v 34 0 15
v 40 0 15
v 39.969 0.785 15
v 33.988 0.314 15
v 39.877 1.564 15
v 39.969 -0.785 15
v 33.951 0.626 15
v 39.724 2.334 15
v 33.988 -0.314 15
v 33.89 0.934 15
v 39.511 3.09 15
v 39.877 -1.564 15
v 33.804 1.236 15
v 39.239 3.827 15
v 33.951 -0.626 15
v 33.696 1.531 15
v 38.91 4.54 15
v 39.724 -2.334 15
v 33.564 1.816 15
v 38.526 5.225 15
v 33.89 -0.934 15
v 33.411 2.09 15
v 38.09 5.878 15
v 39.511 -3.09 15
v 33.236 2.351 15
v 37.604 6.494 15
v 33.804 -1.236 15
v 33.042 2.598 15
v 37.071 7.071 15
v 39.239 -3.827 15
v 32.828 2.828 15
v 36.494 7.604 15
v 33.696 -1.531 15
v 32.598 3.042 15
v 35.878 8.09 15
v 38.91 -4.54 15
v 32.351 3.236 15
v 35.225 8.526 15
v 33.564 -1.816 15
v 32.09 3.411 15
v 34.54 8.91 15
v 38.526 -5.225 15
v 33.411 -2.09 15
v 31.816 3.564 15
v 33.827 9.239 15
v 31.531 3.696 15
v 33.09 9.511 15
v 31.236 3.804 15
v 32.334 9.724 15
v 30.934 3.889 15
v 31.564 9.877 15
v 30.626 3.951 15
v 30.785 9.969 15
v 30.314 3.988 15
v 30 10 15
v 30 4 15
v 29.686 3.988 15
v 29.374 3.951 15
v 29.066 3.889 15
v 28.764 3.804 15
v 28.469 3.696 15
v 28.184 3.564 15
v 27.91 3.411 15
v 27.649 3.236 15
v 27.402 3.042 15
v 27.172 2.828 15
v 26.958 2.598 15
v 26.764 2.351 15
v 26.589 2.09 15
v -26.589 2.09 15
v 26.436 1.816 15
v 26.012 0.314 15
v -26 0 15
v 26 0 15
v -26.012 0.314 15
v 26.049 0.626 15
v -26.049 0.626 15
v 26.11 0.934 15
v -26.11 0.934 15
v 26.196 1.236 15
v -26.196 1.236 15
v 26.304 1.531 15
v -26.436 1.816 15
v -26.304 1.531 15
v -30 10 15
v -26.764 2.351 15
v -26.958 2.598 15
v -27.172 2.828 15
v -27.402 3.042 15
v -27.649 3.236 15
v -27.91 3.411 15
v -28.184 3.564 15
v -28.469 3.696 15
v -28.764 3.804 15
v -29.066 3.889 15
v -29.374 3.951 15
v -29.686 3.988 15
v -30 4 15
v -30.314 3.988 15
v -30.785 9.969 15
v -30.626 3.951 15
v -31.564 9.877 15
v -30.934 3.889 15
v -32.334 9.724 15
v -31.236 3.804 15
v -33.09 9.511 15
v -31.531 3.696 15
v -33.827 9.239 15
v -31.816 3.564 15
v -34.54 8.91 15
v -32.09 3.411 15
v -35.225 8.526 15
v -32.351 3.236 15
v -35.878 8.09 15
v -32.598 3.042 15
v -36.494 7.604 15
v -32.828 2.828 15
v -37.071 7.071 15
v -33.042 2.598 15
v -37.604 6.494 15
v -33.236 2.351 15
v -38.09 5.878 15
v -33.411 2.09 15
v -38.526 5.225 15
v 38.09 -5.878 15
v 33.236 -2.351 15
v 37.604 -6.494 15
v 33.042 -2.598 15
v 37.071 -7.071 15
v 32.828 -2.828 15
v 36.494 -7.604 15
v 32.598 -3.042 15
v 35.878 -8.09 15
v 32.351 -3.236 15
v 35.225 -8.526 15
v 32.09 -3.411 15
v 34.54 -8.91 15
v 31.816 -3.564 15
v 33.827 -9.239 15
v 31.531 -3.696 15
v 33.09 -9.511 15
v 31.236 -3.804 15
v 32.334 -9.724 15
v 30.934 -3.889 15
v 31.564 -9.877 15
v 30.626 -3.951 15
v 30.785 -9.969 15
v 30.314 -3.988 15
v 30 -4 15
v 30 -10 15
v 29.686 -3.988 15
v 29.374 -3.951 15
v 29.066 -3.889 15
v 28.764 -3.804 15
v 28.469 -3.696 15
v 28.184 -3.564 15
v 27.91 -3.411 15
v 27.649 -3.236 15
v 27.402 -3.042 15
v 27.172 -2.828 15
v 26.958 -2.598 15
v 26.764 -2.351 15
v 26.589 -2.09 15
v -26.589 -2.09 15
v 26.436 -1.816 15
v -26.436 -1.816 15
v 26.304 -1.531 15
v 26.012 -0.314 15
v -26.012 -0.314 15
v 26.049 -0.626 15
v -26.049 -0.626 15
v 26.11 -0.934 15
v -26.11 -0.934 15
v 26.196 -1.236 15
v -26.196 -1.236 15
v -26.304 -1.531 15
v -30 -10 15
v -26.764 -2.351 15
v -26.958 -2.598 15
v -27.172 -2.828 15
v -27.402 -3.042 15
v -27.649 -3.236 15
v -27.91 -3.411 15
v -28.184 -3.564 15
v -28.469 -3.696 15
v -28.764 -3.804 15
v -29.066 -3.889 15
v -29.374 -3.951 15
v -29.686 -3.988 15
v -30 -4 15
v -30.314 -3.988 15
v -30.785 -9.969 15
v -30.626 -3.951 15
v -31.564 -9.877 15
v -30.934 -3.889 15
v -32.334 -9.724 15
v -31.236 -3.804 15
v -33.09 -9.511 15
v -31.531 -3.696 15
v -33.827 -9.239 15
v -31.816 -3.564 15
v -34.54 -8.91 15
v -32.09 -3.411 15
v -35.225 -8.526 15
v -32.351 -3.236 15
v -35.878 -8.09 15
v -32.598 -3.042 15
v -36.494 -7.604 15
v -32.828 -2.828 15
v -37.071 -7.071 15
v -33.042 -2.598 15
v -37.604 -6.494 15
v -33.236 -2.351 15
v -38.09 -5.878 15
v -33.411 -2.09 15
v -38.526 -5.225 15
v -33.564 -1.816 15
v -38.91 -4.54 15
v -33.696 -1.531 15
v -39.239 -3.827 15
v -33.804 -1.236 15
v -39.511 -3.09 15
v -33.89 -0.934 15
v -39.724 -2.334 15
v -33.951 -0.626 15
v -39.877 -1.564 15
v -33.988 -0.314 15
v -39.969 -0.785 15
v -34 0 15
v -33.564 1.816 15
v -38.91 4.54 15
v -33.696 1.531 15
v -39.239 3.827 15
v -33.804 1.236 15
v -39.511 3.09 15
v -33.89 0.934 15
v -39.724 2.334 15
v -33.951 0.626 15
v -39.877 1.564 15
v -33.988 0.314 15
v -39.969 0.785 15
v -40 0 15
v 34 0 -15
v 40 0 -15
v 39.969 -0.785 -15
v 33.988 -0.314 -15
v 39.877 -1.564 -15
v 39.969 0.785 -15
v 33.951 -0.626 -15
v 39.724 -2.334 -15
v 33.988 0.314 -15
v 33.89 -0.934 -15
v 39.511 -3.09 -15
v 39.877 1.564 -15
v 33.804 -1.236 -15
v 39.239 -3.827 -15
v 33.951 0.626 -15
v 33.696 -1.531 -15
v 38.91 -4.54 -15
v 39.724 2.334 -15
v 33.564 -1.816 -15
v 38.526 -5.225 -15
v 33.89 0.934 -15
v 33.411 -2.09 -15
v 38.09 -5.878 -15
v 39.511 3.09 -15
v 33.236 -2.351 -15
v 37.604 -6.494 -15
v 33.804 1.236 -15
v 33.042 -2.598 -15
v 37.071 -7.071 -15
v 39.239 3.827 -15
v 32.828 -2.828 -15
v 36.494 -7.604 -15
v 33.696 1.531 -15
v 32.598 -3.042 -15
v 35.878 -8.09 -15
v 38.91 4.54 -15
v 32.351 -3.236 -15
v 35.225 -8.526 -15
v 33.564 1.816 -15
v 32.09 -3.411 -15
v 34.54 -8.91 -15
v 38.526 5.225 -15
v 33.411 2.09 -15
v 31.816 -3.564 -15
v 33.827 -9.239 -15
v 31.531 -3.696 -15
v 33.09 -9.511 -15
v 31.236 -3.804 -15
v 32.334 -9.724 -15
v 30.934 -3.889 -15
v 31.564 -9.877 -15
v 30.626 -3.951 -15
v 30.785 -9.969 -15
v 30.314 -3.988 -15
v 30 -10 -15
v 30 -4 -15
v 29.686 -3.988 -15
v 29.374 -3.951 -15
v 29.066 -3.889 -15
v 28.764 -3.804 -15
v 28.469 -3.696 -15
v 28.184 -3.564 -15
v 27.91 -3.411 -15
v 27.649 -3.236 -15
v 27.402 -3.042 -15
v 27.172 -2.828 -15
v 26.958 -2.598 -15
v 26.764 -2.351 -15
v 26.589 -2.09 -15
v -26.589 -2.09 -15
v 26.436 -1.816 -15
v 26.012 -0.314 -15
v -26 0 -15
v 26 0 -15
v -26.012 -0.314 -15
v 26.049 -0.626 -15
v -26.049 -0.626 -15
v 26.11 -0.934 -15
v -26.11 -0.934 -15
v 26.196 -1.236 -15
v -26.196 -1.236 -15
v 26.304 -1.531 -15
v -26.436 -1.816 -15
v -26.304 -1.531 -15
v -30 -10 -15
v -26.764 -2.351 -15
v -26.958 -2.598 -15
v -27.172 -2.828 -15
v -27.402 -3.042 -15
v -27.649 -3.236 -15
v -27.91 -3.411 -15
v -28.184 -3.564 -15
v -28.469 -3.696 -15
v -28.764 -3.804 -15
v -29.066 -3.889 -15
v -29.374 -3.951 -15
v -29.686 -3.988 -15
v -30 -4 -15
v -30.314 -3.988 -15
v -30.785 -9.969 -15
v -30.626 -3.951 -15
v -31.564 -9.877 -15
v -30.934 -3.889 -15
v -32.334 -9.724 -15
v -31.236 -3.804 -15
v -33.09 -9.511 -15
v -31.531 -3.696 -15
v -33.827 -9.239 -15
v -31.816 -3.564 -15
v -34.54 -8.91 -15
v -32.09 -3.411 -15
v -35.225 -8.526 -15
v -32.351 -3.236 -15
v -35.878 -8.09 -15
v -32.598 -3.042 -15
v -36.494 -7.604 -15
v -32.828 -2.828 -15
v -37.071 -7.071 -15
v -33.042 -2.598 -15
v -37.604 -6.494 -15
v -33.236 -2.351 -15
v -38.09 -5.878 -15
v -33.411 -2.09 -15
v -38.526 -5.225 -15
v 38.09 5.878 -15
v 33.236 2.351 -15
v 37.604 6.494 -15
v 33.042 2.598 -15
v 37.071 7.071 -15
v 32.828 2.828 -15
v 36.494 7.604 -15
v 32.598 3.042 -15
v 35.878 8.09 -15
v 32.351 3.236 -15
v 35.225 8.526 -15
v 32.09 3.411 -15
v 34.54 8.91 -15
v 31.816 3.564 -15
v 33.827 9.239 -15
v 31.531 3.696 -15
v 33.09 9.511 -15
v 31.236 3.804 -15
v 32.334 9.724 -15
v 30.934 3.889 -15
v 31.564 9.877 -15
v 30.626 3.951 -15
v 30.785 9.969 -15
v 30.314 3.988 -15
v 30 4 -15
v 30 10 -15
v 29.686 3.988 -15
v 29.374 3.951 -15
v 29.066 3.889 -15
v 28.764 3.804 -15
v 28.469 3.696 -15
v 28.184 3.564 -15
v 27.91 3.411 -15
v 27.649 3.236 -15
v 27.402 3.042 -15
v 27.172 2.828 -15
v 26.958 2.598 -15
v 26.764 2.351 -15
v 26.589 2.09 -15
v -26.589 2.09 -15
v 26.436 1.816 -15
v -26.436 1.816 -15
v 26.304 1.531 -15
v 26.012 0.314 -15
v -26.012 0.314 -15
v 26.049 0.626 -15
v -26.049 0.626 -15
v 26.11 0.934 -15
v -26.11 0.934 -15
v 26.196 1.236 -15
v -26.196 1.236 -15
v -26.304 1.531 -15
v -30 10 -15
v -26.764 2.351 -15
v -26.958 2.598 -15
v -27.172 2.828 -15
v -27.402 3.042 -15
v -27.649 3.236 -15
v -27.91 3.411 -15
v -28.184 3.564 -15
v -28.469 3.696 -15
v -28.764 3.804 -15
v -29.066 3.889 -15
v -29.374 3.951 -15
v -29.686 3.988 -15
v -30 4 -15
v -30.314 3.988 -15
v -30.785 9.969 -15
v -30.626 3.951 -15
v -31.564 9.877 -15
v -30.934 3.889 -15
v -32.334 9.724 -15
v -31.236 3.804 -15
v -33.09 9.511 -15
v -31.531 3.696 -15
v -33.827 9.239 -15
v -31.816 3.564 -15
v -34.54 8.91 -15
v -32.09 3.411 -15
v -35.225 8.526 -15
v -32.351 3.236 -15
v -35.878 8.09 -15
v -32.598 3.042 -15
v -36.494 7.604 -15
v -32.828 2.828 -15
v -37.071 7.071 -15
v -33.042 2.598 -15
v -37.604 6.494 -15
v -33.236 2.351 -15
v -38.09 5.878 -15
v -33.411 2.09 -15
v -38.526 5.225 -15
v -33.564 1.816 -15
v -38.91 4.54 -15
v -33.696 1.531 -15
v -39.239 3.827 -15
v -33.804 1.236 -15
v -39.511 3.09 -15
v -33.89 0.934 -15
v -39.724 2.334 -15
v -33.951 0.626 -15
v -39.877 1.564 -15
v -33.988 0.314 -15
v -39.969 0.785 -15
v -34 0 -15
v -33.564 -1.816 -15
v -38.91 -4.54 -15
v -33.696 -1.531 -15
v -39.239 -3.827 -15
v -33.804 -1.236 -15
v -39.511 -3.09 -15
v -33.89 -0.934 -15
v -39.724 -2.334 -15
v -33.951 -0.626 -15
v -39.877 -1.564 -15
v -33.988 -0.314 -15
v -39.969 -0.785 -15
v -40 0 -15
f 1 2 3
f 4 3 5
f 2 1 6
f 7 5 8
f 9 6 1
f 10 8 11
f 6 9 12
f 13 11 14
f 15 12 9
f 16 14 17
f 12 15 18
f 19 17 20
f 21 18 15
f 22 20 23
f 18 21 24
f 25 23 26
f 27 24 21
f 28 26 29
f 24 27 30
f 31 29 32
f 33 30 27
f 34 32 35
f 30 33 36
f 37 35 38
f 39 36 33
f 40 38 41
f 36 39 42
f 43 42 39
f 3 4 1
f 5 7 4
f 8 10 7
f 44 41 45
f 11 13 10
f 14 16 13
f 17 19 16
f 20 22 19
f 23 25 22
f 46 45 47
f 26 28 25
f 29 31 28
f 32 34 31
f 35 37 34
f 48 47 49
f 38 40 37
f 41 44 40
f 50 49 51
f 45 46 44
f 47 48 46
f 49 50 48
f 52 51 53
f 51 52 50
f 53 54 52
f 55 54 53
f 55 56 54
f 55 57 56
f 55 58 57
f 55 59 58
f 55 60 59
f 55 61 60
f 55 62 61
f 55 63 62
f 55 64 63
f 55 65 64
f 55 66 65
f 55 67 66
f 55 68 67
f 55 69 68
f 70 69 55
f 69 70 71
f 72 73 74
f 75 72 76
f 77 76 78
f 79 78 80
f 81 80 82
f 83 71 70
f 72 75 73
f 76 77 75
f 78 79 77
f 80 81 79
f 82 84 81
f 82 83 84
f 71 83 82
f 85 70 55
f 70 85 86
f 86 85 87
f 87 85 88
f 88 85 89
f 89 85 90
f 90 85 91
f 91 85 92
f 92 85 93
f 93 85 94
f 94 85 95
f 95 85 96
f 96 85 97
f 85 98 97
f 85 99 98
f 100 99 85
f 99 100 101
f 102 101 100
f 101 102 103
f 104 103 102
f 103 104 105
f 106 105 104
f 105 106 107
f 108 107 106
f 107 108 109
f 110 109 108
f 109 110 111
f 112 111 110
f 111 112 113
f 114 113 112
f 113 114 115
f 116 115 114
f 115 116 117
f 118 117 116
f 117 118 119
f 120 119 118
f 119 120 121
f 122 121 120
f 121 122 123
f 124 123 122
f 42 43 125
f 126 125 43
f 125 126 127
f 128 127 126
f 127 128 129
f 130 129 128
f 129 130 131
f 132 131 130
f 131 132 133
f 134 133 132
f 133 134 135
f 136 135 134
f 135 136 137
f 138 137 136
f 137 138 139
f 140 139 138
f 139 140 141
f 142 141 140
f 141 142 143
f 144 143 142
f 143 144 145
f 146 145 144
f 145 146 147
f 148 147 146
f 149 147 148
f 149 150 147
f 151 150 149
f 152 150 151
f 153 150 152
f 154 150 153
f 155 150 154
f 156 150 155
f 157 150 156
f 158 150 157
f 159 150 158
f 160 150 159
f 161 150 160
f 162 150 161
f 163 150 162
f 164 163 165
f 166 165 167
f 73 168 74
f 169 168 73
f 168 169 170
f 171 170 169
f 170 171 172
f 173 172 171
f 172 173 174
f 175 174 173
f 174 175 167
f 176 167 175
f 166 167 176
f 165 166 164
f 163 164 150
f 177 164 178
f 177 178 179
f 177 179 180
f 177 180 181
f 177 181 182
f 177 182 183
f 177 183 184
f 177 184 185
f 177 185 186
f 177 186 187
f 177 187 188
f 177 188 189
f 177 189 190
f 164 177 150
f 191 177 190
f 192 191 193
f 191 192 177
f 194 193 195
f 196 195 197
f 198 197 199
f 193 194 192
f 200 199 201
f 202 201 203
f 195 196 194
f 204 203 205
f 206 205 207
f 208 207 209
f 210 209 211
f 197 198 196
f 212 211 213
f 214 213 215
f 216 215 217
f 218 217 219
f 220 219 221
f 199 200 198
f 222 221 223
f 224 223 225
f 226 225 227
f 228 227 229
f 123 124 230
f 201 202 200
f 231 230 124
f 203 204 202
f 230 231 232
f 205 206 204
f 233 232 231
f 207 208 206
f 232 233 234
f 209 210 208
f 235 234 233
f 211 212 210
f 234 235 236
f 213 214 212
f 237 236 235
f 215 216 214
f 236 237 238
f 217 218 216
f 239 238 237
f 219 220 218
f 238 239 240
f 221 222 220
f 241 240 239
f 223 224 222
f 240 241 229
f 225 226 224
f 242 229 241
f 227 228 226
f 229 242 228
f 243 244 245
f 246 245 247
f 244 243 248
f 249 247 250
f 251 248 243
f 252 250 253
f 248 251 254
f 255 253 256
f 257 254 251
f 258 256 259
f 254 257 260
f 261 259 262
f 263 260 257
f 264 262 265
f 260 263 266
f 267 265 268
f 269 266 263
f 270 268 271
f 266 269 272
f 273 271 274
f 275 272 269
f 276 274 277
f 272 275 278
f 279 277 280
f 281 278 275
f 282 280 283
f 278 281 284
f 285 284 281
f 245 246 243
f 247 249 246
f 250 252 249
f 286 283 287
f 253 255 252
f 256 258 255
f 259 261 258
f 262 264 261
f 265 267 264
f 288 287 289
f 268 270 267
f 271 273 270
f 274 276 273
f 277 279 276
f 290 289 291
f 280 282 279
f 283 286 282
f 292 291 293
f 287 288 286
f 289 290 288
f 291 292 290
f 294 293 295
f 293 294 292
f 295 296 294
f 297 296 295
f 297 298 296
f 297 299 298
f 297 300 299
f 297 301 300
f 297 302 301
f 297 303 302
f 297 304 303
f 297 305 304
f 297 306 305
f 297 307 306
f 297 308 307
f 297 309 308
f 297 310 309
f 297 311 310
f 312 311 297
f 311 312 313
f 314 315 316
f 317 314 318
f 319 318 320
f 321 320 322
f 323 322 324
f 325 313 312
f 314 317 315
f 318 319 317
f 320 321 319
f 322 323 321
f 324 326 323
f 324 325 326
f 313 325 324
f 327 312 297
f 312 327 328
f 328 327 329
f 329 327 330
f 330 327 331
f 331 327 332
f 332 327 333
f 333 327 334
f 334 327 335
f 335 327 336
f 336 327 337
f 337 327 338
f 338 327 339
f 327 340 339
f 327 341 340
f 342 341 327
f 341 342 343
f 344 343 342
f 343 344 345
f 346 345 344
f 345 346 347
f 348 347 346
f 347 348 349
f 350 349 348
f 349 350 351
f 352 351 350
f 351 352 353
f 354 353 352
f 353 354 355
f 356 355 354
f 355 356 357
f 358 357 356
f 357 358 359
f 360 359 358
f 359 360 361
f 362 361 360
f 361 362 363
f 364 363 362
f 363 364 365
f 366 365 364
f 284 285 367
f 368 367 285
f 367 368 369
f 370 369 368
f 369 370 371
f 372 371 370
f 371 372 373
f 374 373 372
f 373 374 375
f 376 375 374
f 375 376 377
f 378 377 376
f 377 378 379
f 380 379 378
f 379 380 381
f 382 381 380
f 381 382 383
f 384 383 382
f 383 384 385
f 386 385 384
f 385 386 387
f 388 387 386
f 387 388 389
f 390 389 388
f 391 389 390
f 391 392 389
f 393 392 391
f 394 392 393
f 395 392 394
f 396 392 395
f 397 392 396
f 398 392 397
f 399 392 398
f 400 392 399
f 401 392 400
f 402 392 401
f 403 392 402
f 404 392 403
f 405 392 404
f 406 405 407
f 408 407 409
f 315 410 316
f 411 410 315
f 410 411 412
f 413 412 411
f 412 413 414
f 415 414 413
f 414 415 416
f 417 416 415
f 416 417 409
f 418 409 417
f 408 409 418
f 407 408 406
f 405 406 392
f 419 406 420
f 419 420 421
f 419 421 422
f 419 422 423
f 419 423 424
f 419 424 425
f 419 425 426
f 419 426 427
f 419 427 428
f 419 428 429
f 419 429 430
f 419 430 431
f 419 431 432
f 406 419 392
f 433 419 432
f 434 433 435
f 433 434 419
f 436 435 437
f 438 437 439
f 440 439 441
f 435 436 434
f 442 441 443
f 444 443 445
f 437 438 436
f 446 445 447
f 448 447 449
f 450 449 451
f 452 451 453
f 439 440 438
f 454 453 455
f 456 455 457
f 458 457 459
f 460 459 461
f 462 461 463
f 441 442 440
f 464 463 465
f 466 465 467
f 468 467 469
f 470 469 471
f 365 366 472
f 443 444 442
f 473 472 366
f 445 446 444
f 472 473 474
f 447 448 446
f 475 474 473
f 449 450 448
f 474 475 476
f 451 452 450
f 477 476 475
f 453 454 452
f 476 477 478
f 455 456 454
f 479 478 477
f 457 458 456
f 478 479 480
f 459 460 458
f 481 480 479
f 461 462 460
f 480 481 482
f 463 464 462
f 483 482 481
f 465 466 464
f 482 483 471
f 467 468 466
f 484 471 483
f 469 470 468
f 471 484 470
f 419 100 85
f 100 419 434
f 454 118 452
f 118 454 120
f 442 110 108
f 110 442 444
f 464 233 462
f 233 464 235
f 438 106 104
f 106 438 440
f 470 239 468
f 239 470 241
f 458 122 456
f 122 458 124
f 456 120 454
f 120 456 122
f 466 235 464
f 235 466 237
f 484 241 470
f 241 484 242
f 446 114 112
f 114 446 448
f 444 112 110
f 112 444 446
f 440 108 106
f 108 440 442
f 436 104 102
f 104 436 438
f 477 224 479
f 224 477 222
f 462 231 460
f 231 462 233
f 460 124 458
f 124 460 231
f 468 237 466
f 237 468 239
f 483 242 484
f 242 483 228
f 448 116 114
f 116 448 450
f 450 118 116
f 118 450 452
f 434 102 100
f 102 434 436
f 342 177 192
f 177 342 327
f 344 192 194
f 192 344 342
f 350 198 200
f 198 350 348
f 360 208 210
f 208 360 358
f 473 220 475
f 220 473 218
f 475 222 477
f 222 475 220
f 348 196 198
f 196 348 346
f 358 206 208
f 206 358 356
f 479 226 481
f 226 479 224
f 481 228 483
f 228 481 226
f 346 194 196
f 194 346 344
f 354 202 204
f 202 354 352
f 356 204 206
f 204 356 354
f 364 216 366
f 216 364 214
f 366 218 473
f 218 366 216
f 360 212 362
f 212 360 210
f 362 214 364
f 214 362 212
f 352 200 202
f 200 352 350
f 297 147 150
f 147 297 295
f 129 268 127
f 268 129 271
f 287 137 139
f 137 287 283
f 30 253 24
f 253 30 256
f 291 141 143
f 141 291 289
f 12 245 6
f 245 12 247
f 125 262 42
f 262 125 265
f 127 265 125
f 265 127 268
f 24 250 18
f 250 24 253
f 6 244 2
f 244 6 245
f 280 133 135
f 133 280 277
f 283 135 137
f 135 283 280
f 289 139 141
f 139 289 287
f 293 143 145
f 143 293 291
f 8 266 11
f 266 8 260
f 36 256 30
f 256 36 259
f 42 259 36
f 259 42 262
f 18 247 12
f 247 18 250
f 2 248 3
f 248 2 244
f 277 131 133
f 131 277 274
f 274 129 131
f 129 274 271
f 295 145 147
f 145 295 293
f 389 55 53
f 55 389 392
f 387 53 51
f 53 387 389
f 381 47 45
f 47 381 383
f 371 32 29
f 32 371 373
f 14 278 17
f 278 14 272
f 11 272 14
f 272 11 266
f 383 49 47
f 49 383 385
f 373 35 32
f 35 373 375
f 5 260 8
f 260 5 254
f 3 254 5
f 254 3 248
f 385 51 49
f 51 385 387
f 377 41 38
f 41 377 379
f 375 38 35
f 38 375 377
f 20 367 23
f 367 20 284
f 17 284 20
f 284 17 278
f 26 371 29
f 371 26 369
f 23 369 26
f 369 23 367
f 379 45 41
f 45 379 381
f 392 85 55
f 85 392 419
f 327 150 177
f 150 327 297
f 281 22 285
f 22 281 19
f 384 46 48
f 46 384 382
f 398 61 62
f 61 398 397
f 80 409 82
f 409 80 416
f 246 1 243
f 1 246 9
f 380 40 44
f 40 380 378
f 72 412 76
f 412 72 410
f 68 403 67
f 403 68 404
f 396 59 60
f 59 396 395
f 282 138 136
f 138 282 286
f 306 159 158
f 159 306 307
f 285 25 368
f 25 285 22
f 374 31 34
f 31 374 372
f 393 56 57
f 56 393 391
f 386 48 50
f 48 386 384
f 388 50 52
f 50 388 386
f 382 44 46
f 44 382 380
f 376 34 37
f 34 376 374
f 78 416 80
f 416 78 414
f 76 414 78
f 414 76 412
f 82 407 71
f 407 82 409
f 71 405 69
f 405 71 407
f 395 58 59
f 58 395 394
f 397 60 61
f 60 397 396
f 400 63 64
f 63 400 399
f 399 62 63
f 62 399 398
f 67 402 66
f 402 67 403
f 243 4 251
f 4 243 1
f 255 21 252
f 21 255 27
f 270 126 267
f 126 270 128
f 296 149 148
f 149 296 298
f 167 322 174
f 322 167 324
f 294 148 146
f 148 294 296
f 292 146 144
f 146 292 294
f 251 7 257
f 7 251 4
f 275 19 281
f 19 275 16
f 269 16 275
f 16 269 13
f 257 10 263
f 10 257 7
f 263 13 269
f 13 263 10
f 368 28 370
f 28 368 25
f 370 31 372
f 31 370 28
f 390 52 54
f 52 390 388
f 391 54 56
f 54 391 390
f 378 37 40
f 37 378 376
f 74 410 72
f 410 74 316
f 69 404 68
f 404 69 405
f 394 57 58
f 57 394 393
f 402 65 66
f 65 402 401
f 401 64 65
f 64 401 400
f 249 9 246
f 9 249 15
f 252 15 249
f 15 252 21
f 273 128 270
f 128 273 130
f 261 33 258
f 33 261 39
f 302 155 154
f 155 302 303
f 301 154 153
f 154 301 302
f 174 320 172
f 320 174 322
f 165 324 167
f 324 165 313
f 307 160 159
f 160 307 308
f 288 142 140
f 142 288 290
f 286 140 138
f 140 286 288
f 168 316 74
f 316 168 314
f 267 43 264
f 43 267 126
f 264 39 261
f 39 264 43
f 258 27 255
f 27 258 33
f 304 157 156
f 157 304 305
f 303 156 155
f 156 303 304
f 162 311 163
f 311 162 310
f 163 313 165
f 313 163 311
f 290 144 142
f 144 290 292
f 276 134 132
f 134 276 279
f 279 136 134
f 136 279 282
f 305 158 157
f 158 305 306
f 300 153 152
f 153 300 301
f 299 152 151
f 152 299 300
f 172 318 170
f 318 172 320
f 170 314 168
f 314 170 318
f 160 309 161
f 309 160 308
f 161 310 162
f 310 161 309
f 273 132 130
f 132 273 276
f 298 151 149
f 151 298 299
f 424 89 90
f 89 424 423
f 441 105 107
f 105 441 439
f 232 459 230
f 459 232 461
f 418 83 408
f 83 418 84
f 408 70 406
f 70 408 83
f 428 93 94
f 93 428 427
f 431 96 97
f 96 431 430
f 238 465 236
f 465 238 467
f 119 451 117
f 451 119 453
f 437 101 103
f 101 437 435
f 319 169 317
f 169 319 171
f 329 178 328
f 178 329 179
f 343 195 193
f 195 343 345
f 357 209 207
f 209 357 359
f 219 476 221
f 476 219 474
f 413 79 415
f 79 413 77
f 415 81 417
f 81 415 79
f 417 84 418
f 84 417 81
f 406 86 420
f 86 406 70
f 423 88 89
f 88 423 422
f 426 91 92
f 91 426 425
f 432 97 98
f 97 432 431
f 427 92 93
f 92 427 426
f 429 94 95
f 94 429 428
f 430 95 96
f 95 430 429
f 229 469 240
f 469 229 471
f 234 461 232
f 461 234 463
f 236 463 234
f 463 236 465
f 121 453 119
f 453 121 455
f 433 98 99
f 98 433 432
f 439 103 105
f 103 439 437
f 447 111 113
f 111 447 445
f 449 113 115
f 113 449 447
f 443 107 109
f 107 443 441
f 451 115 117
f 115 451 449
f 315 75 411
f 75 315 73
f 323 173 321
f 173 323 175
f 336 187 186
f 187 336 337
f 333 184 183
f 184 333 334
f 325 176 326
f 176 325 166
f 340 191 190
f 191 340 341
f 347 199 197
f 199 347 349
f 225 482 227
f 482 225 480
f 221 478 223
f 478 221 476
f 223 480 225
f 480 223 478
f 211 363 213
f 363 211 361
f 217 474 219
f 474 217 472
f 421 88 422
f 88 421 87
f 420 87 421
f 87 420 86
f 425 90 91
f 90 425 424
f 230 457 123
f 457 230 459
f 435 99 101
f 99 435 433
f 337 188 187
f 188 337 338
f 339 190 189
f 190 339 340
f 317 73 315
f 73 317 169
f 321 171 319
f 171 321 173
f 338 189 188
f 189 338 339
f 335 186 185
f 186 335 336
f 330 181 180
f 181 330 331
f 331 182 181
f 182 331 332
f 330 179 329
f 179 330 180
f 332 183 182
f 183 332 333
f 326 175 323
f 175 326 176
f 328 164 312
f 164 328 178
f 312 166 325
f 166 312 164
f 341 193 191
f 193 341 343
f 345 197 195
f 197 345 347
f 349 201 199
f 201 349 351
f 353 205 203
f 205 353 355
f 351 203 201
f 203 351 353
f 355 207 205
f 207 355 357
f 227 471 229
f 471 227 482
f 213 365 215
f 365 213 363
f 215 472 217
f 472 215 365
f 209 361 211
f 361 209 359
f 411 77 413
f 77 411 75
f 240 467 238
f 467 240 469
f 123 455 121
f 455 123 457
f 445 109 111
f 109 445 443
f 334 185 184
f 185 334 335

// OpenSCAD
$fn=80;
length=60;
width=20;
height=30;

boltDiameter=8;

module boltHoles() {
    module boltHole() {
        translate([0,0,-(height+10)/2]) {
            cylinder(d=boltDiameter,h=height+10);
        }
    }

    translate([(length/2),0,0]) {
        boltHole();
    }
    translate([-(length/2),0,0]) {
        boltHole();
    }
}

module cornerRounder() {
    
    intersection() {
        cube([width,width,height], center=true);
        translate([width/2,0,-((height)/2)]) cylinder(d=width, h=height+10);
    }
}

difference() {
    union() {
        cube([length,width, height], center=true);
        translate([-((length/2)+width/2),0,0]) cornerRounder();
        rotate([0,0,180]) translate([-((length/2)+width/2),0,0]) cornerRounder();
    }
    boltHoles();
}

%translate([0,0,(height/2)+2]) cube([length,1,1], center=true);

// 255 vs 205
